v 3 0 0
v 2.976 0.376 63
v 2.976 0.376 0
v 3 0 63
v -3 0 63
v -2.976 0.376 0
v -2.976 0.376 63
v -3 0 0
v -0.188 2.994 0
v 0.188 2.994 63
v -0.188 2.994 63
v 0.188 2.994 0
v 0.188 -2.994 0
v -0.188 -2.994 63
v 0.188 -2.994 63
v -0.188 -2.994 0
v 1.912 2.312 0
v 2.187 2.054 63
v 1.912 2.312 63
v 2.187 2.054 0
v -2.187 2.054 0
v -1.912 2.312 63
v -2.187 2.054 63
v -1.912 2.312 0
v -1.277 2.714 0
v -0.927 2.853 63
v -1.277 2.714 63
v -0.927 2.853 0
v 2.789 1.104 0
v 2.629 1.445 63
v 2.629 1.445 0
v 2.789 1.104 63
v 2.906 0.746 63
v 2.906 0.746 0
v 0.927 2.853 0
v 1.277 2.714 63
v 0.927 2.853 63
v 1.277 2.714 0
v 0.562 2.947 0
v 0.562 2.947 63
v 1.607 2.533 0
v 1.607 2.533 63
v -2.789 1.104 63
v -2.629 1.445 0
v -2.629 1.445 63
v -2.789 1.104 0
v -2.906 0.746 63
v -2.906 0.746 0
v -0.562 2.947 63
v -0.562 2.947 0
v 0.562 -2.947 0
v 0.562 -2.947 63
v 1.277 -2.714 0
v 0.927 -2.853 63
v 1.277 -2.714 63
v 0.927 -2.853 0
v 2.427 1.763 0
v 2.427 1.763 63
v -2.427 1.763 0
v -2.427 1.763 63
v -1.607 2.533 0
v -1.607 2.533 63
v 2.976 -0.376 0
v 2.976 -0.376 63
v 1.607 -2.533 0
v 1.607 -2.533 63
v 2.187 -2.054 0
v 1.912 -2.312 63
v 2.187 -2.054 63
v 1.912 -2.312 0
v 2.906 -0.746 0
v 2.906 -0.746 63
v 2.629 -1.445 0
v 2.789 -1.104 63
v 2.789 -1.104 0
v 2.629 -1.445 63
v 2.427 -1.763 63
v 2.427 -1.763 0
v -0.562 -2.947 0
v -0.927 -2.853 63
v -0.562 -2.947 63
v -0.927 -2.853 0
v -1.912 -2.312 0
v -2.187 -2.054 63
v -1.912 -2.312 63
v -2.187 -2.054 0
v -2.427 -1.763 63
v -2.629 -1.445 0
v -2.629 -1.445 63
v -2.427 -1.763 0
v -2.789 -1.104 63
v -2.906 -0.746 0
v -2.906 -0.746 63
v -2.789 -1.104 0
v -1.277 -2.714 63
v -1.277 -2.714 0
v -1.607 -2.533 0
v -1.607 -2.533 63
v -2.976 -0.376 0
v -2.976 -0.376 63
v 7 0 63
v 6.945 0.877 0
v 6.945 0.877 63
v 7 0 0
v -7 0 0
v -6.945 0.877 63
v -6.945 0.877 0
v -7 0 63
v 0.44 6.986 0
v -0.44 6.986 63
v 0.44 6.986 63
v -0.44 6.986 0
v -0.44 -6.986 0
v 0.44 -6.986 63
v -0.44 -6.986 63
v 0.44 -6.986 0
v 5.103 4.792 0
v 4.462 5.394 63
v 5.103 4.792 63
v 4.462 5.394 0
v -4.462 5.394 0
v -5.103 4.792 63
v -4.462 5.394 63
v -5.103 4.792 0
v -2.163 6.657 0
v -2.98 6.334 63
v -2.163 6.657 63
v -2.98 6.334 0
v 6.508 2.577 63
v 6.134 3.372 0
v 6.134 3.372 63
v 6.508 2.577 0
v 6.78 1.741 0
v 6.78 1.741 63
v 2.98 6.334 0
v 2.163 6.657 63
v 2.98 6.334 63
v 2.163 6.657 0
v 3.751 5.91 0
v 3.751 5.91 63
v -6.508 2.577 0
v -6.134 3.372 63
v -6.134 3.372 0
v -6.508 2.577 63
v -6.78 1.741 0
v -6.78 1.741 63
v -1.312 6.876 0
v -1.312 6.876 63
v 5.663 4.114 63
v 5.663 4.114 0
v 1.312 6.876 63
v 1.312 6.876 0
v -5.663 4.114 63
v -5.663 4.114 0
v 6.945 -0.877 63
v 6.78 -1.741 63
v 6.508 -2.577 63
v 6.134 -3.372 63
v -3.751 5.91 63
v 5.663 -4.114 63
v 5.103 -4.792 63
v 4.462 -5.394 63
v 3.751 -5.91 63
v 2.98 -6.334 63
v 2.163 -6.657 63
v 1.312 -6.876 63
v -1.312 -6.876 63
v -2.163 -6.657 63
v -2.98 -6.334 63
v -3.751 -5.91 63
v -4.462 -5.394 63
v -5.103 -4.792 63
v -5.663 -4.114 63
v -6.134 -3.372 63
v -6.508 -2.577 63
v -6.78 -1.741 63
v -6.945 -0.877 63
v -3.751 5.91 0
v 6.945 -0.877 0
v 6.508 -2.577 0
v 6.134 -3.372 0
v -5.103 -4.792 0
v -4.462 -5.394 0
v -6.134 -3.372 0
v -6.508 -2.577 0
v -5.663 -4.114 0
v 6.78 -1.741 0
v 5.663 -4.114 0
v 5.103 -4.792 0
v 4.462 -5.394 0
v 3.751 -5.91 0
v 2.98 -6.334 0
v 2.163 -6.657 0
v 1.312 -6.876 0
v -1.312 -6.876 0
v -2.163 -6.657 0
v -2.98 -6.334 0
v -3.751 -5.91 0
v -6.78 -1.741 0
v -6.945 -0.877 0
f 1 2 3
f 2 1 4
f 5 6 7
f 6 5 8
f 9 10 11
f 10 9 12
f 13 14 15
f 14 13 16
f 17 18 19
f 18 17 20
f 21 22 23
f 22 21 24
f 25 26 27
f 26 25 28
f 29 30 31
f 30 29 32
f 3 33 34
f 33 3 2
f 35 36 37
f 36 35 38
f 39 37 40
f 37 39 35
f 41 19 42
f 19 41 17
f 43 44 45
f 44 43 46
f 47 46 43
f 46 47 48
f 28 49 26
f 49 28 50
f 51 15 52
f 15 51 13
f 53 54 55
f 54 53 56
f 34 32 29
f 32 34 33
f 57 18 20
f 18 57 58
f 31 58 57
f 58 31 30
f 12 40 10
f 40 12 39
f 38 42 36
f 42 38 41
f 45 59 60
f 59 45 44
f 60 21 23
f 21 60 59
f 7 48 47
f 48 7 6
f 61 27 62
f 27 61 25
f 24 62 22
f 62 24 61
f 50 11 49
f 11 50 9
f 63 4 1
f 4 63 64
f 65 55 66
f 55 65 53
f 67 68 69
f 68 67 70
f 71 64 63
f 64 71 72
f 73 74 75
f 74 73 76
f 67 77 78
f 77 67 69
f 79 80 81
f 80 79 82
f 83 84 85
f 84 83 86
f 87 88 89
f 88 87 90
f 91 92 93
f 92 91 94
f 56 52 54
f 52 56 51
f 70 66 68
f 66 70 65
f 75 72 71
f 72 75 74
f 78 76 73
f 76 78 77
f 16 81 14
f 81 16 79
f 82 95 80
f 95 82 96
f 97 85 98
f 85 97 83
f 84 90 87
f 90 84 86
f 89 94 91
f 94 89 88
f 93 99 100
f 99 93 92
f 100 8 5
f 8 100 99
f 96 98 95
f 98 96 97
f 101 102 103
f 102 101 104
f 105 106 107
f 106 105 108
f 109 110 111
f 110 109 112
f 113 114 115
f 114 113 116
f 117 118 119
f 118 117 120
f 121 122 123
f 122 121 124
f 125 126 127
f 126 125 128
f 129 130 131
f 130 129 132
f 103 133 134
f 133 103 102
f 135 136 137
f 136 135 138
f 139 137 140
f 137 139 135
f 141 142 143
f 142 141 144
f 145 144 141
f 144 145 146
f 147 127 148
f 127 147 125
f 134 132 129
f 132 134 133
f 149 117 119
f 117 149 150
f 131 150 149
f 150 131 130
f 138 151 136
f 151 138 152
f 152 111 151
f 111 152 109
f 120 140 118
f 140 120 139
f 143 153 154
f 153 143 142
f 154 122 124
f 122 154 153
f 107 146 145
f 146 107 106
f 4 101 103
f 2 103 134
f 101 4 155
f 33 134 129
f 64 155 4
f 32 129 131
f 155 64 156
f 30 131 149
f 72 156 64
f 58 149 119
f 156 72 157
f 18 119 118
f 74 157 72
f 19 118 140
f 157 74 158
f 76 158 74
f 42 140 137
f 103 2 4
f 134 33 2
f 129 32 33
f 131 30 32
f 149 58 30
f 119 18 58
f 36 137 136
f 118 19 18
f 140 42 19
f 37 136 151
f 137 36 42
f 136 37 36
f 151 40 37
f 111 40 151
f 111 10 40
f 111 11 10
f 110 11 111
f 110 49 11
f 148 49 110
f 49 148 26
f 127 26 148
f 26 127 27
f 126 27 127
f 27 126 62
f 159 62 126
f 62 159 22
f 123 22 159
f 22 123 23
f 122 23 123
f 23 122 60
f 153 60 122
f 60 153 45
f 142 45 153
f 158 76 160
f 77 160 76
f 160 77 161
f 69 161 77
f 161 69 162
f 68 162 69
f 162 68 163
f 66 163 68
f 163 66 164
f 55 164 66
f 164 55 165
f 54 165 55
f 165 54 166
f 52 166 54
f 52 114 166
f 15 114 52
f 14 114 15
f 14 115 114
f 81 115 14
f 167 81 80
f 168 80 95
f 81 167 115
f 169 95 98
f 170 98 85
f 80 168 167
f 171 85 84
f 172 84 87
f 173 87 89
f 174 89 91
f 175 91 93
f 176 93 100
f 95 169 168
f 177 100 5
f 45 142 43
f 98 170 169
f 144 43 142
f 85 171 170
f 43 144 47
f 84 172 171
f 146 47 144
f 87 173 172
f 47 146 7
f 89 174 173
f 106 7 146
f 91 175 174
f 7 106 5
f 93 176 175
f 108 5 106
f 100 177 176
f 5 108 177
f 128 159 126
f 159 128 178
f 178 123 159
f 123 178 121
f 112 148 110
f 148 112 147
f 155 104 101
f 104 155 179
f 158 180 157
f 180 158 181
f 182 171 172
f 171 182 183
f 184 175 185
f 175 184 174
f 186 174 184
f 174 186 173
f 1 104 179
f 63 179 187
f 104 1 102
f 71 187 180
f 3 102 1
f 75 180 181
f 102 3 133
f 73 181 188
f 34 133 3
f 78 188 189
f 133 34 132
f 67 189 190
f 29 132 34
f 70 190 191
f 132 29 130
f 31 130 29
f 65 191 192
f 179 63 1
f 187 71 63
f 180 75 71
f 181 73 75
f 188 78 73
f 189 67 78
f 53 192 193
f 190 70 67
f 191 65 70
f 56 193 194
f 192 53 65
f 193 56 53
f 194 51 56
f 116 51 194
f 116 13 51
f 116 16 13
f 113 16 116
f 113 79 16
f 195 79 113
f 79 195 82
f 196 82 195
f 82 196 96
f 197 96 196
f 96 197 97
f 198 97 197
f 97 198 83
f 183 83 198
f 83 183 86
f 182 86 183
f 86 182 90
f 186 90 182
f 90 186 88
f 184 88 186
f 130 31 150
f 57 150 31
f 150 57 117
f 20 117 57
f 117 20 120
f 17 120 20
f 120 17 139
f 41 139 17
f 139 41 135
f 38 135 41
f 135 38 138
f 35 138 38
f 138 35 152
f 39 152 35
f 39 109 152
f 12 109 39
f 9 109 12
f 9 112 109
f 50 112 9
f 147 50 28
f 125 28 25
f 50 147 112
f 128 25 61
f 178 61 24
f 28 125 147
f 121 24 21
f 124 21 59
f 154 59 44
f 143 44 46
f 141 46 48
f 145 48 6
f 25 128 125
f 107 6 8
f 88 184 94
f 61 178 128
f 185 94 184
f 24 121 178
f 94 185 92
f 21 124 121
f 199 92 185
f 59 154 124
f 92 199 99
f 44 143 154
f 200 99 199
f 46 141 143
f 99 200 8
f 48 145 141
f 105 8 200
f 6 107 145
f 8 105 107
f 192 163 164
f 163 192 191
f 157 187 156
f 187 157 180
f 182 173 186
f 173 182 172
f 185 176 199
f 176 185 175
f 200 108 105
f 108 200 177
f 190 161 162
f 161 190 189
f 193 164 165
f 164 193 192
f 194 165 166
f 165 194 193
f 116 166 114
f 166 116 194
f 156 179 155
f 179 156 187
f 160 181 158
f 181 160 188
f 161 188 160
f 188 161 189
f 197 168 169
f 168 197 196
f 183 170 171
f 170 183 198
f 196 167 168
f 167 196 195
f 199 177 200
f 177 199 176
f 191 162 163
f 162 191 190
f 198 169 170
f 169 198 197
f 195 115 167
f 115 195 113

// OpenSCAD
$fn = 50;


difference() {
	union() {
		cylinder(h = 63, r = 7.0000000000);
	}
	union() {
		translate(v = [0, 0, -100]) {
			cylinder(h = 200, r = 3.0000000000);
		}
		translate(v = [0, 0, -100]) {
			cylinder(h = 200, r = 1.5000000000);
		}
	}
}
